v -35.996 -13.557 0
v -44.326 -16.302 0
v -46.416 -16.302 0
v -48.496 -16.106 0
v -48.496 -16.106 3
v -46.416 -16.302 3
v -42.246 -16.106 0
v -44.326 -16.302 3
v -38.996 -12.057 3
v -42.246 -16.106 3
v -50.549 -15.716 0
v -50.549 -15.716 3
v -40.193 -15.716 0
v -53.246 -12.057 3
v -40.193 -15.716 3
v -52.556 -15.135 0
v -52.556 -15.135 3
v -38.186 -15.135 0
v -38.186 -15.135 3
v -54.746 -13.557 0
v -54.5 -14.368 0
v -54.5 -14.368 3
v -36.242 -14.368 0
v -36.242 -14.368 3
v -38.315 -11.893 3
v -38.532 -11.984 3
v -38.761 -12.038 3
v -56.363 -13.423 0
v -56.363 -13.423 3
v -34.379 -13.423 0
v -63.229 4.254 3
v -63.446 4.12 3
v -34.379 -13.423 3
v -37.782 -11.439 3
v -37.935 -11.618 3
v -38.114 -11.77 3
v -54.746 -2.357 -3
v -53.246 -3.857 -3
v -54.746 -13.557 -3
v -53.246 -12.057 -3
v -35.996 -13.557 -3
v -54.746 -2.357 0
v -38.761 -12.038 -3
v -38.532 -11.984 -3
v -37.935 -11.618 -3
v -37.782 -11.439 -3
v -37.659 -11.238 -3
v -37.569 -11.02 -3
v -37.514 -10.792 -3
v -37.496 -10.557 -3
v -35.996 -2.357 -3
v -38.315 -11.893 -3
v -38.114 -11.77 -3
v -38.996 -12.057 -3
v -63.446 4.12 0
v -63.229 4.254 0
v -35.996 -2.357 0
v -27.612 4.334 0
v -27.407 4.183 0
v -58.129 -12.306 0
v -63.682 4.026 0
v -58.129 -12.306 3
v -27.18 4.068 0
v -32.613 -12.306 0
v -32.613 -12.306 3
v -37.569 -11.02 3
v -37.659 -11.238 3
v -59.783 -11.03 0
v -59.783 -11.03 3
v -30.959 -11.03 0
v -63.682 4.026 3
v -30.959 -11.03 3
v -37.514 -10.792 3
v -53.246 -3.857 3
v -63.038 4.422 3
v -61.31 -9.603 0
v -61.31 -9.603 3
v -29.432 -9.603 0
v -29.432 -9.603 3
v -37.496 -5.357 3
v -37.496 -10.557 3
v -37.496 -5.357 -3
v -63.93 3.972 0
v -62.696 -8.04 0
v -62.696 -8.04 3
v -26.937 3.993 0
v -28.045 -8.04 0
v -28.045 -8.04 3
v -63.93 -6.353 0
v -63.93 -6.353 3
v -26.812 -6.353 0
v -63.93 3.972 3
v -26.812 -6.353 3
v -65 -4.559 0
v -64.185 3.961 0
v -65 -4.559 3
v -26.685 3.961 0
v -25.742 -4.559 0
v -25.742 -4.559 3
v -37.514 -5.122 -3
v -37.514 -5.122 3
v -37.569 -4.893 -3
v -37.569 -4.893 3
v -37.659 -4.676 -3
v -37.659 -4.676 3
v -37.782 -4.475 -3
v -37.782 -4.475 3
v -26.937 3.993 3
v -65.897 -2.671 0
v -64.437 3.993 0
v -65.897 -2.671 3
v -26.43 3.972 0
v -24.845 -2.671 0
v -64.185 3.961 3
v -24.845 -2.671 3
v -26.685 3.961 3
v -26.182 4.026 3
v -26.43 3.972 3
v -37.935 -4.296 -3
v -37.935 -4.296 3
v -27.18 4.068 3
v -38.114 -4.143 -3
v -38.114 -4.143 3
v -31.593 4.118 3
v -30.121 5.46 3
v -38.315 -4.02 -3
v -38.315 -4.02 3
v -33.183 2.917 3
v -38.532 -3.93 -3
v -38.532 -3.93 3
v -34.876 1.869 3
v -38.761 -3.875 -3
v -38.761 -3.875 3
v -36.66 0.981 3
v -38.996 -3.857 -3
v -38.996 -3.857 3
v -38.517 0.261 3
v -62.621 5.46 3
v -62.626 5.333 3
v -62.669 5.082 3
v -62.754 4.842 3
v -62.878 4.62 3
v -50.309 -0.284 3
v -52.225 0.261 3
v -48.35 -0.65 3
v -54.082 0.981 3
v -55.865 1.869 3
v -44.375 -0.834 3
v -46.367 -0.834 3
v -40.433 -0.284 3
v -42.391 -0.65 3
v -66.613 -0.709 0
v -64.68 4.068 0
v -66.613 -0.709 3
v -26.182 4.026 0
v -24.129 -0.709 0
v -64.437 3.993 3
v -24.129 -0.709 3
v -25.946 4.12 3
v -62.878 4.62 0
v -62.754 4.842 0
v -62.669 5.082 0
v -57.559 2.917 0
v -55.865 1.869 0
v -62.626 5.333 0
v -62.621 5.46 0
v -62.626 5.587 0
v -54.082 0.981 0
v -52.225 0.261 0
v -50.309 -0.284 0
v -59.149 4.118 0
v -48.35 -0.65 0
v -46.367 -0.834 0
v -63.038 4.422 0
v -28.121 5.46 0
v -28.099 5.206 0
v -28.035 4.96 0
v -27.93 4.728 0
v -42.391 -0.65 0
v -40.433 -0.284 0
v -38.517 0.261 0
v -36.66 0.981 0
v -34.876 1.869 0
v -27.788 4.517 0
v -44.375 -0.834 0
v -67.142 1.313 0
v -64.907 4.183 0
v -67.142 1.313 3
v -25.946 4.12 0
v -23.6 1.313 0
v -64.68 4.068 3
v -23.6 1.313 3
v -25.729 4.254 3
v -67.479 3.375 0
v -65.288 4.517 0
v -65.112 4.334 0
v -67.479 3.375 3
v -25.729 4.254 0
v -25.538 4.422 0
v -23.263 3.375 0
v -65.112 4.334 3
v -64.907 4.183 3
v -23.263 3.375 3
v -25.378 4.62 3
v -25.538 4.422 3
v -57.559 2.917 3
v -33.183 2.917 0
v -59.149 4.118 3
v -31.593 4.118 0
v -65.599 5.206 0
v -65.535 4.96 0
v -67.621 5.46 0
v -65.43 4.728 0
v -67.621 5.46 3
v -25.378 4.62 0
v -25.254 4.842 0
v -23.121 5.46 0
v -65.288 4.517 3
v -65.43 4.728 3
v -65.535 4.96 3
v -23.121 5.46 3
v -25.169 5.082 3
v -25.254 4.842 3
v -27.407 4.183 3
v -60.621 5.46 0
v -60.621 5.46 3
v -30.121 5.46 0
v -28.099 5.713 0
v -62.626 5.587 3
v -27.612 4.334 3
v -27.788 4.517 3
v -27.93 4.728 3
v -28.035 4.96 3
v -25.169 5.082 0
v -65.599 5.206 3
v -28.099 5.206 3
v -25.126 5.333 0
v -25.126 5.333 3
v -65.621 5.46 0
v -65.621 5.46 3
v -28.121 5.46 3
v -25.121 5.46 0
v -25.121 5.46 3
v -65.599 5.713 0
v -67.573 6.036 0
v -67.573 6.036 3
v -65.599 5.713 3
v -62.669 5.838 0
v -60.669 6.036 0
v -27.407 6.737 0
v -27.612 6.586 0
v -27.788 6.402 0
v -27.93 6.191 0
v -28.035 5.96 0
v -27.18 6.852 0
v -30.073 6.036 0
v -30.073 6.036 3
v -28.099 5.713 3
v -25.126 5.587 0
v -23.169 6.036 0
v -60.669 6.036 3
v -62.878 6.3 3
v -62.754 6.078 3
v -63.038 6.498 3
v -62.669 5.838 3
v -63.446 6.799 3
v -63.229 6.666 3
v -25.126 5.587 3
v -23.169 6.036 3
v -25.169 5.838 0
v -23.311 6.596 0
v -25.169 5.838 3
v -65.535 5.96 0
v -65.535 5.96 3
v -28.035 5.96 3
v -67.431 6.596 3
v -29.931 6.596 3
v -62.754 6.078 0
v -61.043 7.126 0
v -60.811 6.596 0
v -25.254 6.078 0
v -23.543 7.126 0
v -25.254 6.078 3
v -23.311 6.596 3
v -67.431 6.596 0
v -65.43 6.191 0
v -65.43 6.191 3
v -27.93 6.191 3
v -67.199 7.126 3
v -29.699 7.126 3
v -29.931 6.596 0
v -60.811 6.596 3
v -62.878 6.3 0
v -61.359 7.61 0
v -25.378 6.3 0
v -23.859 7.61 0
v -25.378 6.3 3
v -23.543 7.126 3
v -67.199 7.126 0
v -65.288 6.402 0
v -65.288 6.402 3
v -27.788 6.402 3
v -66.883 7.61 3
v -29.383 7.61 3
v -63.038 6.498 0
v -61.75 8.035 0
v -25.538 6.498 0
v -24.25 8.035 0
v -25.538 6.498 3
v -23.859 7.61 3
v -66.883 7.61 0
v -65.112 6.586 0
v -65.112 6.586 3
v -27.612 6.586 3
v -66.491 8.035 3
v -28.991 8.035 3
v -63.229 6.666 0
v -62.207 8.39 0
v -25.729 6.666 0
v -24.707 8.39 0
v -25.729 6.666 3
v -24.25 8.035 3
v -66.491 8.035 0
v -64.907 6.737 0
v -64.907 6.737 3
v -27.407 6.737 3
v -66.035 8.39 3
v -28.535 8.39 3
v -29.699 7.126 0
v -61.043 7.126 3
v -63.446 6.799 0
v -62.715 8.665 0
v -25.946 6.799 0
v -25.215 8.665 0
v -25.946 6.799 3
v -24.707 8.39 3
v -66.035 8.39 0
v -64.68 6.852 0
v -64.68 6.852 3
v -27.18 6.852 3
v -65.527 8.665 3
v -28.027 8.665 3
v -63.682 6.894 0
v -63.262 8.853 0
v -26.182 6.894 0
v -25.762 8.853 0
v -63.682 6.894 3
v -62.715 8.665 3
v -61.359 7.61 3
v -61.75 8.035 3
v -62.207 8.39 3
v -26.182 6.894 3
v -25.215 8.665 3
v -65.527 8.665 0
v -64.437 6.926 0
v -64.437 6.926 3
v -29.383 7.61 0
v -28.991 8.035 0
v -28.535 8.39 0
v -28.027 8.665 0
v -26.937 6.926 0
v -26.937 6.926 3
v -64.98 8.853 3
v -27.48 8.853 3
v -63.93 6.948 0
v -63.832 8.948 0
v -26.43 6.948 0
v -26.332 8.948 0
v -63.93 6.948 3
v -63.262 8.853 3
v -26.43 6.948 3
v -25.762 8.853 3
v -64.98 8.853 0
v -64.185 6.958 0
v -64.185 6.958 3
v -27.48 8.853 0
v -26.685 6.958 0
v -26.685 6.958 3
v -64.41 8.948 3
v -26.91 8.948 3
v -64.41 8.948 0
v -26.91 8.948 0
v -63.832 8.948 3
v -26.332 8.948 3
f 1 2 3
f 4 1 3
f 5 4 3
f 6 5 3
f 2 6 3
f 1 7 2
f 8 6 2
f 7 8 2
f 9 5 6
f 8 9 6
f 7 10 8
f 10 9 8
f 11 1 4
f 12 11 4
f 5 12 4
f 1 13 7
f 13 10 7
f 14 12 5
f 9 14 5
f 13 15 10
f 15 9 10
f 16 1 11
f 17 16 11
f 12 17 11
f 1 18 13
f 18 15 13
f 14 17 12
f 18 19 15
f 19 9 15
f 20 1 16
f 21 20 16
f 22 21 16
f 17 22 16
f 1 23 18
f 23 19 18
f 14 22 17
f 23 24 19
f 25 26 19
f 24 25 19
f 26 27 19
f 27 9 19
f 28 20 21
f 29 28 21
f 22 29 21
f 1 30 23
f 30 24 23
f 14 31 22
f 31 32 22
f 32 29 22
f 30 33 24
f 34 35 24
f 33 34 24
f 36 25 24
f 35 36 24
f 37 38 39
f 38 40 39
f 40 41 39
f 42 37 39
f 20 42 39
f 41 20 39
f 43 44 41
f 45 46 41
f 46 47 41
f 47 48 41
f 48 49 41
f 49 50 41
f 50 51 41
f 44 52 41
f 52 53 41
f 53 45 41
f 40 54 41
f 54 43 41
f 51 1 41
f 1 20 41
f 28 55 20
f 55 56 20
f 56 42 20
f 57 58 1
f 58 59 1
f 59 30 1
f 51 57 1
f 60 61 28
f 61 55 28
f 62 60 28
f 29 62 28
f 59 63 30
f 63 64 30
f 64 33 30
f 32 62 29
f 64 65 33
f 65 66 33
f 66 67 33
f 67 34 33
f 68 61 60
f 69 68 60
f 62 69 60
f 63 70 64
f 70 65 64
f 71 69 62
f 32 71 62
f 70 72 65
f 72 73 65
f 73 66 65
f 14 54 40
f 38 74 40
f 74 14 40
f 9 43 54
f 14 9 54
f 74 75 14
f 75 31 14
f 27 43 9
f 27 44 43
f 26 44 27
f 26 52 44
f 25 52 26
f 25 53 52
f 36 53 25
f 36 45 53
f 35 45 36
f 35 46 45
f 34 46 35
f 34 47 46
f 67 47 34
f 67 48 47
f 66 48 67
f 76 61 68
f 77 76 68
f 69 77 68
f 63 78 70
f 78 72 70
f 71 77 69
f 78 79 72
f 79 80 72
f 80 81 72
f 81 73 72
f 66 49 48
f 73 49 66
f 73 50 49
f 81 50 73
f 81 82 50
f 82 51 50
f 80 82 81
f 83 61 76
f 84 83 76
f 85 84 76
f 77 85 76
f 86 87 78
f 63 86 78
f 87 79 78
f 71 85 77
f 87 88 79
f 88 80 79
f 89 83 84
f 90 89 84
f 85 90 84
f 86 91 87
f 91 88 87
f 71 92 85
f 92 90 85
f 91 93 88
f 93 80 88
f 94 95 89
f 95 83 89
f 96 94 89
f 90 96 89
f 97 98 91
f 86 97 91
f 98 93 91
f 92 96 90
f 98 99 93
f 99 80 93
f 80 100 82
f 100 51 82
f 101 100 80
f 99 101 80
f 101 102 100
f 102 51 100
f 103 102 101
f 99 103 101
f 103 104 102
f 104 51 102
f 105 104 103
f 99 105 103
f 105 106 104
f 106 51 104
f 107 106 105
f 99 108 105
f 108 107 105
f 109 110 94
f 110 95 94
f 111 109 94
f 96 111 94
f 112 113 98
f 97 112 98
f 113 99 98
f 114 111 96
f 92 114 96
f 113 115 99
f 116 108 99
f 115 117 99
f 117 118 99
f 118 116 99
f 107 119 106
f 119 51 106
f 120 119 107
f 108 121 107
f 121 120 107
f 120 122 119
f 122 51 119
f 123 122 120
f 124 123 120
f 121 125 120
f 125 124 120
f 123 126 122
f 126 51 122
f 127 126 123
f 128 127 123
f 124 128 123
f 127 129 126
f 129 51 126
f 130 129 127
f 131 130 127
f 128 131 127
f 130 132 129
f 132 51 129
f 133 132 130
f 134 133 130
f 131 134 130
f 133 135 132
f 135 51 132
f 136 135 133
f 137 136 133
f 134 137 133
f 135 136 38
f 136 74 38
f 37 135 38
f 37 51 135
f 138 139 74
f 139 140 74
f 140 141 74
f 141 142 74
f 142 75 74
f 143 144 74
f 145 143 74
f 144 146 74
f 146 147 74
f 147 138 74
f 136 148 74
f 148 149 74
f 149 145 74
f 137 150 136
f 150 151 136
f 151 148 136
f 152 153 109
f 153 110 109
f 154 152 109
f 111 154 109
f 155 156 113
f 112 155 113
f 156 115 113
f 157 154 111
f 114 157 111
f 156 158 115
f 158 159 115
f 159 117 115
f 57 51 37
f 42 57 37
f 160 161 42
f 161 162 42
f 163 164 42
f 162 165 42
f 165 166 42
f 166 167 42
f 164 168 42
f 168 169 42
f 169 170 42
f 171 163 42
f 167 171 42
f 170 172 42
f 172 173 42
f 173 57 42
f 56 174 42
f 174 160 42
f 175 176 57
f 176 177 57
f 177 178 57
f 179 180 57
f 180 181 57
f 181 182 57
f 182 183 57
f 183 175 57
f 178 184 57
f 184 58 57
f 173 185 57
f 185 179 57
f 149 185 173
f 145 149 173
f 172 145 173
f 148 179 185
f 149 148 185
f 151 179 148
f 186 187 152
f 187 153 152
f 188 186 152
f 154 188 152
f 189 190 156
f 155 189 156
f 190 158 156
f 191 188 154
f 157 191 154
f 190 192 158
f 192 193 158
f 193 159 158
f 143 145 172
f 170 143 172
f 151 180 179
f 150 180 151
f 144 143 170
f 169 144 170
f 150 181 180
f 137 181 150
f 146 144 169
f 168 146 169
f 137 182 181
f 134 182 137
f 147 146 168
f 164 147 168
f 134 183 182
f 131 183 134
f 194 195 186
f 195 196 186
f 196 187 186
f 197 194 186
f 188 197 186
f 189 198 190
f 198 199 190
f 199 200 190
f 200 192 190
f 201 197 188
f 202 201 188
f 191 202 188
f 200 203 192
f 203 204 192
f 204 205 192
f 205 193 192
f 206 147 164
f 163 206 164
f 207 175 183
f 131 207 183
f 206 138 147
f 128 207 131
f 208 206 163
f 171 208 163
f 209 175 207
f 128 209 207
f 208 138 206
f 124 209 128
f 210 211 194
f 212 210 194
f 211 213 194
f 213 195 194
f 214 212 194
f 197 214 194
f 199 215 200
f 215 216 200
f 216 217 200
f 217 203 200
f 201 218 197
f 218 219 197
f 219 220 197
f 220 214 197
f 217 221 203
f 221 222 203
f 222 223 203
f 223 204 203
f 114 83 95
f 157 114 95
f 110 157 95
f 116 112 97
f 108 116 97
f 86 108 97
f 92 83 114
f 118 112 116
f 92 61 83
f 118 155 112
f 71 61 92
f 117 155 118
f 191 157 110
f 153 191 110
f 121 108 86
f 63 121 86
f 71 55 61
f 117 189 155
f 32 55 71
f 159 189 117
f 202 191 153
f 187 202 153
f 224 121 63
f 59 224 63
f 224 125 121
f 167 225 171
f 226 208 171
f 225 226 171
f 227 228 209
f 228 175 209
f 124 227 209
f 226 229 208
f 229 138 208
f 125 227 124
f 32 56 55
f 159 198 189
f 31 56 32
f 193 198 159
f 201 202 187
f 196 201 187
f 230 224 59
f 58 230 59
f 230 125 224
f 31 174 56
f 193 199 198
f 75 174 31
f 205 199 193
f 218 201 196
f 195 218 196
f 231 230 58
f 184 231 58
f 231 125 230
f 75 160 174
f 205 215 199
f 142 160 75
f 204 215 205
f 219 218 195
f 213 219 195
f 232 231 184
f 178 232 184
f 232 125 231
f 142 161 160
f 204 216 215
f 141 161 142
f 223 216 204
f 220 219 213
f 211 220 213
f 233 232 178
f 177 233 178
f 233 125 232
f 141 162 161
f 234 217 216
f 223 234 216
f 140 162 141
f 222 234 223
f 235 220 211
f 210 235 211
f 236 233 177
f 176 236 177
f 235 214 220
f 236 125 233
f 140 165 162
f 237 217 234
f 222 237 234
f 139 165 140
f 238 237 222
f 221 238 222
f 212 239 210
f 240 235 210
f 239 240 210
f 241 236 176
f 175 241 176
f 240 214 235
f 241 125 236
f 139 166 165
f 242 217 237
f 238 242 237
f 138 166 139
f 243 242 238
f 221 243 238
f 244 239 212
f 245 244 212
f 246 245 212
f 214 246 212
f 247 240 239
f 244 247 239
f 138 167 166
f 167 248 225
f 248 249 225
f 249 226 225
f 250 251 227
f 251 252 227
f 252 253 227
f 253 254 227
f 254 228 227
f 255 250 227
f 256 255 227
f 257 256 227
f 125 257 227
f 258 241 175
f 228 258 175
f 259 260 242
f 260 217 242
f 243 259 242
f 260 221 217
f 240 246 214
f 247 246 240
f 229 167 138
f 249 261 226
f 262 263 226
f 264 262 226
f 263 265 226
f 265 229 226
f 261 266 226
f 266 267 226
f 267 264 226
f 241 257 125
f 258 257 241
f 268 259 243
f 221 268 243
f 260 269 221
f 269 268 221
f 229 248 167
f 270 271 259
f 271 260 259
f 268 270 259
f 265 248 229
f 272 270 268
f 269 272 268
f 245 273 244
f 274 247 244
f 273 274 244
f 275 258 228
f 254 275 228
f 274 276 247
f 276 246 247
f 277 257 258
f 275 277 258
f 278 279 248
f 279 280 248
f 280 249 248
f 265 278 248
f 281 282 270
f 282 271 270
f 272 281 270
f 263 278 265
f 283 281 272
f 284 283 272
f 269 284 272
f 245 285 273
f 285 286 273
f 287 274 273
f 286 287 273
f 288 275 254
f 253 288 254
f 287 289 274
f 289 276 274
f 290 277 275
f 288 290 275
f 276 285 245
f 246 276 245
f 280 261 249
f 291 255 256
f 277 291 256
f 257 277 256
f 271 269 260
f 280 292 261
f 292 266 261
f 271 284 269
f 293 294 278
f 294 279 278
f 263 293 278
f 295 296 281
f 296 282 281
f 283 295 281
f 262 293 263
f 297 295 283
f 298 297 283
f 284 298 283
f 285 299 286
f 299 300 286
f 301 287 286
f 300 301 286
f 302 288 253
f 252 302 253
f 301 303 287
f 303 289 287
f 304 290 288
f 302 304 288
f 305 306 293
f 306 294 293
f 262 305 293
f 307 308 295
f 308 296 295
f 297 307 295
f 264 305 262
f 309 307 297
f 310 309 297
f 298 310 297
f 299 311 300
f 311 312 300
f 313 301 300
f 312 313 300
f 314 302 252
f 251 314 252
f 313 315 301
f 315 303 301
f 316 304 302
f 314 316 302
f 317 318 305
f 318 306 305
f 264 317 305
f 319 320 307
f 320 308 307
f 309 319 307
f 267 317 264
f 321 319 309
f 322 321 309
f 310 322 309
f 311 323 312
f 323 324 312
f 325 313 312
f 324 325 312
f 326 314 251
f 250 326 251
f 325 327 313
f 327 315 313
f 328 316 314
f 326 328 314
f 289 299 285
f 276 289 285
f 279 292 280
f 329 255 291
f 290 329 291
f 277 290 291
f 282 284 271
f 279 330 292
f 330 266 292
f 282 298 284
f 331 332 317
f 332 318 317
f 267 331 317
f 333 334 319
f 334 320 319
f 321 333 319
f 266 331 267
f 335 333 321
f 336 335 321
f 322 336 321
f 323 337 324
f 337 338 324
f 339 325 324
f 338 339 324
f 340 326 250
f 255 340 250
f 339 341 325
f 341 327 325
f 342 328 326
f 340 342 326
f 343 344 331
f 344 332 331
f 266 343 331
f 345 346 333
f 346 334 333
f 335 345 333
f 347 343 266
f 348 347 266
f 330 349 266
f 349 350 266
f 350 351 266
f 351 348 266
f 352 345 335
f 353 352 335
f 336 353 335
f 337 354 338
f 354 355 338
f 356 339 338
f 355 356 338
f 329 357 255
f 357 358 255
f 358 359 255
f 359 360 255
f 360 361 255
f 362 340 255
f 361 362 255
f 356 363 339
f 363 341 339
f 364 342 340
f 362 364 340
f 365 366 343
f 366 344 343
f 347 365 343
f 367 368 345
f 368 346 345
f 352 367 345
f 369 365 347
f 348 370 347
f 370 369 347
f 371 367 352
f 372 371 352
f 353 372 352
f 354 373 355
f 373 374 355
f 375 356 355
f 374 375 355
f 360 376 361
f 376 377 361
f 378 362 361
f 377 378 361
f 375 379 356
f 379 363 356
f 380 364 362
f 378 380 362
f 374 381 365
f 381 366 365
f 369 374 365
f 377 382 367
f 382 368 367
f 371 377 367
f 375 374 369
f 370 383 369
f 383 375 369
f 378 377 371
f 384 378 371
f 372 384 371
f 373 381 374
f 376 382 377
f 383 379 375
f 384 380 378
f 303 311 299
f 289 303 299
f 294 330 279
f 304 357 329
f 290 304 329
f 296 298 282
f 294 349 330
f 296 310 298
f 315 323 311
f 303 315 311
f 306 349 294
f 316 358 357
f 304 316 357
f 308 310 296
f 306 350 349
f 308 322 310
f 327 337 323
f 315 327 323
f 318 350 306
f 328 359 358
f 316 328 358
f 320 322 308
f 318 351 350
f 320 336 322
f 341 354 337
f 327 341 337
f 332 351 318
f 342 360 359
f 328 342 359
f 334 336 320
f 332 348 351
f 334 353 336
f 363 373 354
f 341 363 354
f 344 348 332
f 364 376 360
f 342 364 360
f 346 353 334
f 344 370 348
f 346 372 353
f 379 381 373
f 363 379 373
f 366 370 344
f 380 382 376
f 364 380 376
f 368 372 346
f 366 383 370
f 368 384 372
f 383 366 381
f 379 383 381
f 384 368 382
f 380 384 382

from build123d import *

# Parameters (mm, degrees)
CROQUIS1_R              = 1.5
SALIENTE_EXTRUIR1_DEPTH = 3
SALIENTE_EXTRUIR2_START = 3
CROQUIS2_W              = 18.75
CROQUIS2_H              = 11.2
SALIENTE_EXTRUIR2_DEPTH = 3


with BuildPart() as part:
    # Croquis1 → Saliente-Extruir1 (new body)
    with BuildSketch(Plane.XY):
        with BuildLine():
            ThreePointArc((-30.120896804, 5.459799134), (-45.370896804, -0.856957692), (-60.620896804, 5.459799134))
            ThreePointArc((-60.620896804, 5.459799134), (-64.120896804, 8.959799134), (-67.620896804, 5.459799134))
            ThreePointArc((-67.620896804, 5.459799134), (-67.618884854, 5.372400085), (-67.616529597, 5.285009614))
            ThreePointArc((-67.616529597, 5.285009614), (-45.370896804, -16.326653786), (-23.125264011, 5.285009614))
            ThreePointArc((-23.125264011, 5.285009614), (-23.122908754, 5.372400085), (-23.120896804, 5.459799134))
            ThreePointArc((-23.120896804, 5.459799134), (-26.620896804, 8.959799134), (-30.120896804, 5.459799134))
        make_face()
        with BuildLine():
            Line((-53.245896804, -3.856957692), (-45.370896804, -3.856957692))
            Line((-45.370896804, -3.856957692), (-38.995896804, -3.856957692))
            ThreePointArc((-38.995896804, -3.856957692), (-37.935236632, -4.296297521), (-37.495896804, -5.356957692))
            Line((-37.495896804, -5.356957692), (-37.495896804, -10.556957692))
            ThreePointArc((-37.495896804, -10.556957692), (-37.935236632, -11.617617864), (-38.995896804, -12.056957692))
            Line((-38.995896804, -12.056957692), (-53.245896804, -12.056957692))
            Line((-53.245896804, -12.056957692), (-53.245896804, -3.856957692))
        make_face(mode=Mode.SUBTRACT)
        with Locations((-64.120896804, 5.459799134)):
            Circle(CROQUIS1_R, mode=Mode.SUBTRACT)
        with Locations((-26.620896804, 5.459799134)):
            Circle(CROQUIS1_R, mode=Mode.SUBTRACT)
    extrude(amount=SALIENTE_EXTRUIR1_DEPTH)

    # Croquis2 → Saliente-Extruir2 (add)
    with BuildSketch(Plane(origin=(0, 0, 0), x_dir=(-1, 0, 0), z_dir=(0, 0, -1)).offset(SALIENTE_EXTRUIR2_START)):
        with Locations((45.370896804, -7.956957692)):
            Rectangle(CROQUIS2_W, CROQUIS2_H)
        with BuildLine():
            Line((38.995896804, -12.056957692), (53.245896804, -12.056957692))
            Line((53.245896804, -12.056957692), (53.245896804, -3.856957692))
            Line((53.245896804, -3.856957692), (38.995896804, -3.856957692))
            ThreePointArc((38.995896804, -3.856957692), (37.935236632, -4.296297521), (37.495896804, -5.356957692))
            Line((37.495896804, -5.356957692), (37.495896804, -10.556957692))
            ThreePointArc((37.495896804, -10.556957692), (37.935236632, -11.617617864), (38.995896804, -12.056957692))
        make_face(mode=Mode.SUBTRACT)
    extrude(amount=-SALIENTE_EXTRUIR2_DEPTH)


solid = part.part
